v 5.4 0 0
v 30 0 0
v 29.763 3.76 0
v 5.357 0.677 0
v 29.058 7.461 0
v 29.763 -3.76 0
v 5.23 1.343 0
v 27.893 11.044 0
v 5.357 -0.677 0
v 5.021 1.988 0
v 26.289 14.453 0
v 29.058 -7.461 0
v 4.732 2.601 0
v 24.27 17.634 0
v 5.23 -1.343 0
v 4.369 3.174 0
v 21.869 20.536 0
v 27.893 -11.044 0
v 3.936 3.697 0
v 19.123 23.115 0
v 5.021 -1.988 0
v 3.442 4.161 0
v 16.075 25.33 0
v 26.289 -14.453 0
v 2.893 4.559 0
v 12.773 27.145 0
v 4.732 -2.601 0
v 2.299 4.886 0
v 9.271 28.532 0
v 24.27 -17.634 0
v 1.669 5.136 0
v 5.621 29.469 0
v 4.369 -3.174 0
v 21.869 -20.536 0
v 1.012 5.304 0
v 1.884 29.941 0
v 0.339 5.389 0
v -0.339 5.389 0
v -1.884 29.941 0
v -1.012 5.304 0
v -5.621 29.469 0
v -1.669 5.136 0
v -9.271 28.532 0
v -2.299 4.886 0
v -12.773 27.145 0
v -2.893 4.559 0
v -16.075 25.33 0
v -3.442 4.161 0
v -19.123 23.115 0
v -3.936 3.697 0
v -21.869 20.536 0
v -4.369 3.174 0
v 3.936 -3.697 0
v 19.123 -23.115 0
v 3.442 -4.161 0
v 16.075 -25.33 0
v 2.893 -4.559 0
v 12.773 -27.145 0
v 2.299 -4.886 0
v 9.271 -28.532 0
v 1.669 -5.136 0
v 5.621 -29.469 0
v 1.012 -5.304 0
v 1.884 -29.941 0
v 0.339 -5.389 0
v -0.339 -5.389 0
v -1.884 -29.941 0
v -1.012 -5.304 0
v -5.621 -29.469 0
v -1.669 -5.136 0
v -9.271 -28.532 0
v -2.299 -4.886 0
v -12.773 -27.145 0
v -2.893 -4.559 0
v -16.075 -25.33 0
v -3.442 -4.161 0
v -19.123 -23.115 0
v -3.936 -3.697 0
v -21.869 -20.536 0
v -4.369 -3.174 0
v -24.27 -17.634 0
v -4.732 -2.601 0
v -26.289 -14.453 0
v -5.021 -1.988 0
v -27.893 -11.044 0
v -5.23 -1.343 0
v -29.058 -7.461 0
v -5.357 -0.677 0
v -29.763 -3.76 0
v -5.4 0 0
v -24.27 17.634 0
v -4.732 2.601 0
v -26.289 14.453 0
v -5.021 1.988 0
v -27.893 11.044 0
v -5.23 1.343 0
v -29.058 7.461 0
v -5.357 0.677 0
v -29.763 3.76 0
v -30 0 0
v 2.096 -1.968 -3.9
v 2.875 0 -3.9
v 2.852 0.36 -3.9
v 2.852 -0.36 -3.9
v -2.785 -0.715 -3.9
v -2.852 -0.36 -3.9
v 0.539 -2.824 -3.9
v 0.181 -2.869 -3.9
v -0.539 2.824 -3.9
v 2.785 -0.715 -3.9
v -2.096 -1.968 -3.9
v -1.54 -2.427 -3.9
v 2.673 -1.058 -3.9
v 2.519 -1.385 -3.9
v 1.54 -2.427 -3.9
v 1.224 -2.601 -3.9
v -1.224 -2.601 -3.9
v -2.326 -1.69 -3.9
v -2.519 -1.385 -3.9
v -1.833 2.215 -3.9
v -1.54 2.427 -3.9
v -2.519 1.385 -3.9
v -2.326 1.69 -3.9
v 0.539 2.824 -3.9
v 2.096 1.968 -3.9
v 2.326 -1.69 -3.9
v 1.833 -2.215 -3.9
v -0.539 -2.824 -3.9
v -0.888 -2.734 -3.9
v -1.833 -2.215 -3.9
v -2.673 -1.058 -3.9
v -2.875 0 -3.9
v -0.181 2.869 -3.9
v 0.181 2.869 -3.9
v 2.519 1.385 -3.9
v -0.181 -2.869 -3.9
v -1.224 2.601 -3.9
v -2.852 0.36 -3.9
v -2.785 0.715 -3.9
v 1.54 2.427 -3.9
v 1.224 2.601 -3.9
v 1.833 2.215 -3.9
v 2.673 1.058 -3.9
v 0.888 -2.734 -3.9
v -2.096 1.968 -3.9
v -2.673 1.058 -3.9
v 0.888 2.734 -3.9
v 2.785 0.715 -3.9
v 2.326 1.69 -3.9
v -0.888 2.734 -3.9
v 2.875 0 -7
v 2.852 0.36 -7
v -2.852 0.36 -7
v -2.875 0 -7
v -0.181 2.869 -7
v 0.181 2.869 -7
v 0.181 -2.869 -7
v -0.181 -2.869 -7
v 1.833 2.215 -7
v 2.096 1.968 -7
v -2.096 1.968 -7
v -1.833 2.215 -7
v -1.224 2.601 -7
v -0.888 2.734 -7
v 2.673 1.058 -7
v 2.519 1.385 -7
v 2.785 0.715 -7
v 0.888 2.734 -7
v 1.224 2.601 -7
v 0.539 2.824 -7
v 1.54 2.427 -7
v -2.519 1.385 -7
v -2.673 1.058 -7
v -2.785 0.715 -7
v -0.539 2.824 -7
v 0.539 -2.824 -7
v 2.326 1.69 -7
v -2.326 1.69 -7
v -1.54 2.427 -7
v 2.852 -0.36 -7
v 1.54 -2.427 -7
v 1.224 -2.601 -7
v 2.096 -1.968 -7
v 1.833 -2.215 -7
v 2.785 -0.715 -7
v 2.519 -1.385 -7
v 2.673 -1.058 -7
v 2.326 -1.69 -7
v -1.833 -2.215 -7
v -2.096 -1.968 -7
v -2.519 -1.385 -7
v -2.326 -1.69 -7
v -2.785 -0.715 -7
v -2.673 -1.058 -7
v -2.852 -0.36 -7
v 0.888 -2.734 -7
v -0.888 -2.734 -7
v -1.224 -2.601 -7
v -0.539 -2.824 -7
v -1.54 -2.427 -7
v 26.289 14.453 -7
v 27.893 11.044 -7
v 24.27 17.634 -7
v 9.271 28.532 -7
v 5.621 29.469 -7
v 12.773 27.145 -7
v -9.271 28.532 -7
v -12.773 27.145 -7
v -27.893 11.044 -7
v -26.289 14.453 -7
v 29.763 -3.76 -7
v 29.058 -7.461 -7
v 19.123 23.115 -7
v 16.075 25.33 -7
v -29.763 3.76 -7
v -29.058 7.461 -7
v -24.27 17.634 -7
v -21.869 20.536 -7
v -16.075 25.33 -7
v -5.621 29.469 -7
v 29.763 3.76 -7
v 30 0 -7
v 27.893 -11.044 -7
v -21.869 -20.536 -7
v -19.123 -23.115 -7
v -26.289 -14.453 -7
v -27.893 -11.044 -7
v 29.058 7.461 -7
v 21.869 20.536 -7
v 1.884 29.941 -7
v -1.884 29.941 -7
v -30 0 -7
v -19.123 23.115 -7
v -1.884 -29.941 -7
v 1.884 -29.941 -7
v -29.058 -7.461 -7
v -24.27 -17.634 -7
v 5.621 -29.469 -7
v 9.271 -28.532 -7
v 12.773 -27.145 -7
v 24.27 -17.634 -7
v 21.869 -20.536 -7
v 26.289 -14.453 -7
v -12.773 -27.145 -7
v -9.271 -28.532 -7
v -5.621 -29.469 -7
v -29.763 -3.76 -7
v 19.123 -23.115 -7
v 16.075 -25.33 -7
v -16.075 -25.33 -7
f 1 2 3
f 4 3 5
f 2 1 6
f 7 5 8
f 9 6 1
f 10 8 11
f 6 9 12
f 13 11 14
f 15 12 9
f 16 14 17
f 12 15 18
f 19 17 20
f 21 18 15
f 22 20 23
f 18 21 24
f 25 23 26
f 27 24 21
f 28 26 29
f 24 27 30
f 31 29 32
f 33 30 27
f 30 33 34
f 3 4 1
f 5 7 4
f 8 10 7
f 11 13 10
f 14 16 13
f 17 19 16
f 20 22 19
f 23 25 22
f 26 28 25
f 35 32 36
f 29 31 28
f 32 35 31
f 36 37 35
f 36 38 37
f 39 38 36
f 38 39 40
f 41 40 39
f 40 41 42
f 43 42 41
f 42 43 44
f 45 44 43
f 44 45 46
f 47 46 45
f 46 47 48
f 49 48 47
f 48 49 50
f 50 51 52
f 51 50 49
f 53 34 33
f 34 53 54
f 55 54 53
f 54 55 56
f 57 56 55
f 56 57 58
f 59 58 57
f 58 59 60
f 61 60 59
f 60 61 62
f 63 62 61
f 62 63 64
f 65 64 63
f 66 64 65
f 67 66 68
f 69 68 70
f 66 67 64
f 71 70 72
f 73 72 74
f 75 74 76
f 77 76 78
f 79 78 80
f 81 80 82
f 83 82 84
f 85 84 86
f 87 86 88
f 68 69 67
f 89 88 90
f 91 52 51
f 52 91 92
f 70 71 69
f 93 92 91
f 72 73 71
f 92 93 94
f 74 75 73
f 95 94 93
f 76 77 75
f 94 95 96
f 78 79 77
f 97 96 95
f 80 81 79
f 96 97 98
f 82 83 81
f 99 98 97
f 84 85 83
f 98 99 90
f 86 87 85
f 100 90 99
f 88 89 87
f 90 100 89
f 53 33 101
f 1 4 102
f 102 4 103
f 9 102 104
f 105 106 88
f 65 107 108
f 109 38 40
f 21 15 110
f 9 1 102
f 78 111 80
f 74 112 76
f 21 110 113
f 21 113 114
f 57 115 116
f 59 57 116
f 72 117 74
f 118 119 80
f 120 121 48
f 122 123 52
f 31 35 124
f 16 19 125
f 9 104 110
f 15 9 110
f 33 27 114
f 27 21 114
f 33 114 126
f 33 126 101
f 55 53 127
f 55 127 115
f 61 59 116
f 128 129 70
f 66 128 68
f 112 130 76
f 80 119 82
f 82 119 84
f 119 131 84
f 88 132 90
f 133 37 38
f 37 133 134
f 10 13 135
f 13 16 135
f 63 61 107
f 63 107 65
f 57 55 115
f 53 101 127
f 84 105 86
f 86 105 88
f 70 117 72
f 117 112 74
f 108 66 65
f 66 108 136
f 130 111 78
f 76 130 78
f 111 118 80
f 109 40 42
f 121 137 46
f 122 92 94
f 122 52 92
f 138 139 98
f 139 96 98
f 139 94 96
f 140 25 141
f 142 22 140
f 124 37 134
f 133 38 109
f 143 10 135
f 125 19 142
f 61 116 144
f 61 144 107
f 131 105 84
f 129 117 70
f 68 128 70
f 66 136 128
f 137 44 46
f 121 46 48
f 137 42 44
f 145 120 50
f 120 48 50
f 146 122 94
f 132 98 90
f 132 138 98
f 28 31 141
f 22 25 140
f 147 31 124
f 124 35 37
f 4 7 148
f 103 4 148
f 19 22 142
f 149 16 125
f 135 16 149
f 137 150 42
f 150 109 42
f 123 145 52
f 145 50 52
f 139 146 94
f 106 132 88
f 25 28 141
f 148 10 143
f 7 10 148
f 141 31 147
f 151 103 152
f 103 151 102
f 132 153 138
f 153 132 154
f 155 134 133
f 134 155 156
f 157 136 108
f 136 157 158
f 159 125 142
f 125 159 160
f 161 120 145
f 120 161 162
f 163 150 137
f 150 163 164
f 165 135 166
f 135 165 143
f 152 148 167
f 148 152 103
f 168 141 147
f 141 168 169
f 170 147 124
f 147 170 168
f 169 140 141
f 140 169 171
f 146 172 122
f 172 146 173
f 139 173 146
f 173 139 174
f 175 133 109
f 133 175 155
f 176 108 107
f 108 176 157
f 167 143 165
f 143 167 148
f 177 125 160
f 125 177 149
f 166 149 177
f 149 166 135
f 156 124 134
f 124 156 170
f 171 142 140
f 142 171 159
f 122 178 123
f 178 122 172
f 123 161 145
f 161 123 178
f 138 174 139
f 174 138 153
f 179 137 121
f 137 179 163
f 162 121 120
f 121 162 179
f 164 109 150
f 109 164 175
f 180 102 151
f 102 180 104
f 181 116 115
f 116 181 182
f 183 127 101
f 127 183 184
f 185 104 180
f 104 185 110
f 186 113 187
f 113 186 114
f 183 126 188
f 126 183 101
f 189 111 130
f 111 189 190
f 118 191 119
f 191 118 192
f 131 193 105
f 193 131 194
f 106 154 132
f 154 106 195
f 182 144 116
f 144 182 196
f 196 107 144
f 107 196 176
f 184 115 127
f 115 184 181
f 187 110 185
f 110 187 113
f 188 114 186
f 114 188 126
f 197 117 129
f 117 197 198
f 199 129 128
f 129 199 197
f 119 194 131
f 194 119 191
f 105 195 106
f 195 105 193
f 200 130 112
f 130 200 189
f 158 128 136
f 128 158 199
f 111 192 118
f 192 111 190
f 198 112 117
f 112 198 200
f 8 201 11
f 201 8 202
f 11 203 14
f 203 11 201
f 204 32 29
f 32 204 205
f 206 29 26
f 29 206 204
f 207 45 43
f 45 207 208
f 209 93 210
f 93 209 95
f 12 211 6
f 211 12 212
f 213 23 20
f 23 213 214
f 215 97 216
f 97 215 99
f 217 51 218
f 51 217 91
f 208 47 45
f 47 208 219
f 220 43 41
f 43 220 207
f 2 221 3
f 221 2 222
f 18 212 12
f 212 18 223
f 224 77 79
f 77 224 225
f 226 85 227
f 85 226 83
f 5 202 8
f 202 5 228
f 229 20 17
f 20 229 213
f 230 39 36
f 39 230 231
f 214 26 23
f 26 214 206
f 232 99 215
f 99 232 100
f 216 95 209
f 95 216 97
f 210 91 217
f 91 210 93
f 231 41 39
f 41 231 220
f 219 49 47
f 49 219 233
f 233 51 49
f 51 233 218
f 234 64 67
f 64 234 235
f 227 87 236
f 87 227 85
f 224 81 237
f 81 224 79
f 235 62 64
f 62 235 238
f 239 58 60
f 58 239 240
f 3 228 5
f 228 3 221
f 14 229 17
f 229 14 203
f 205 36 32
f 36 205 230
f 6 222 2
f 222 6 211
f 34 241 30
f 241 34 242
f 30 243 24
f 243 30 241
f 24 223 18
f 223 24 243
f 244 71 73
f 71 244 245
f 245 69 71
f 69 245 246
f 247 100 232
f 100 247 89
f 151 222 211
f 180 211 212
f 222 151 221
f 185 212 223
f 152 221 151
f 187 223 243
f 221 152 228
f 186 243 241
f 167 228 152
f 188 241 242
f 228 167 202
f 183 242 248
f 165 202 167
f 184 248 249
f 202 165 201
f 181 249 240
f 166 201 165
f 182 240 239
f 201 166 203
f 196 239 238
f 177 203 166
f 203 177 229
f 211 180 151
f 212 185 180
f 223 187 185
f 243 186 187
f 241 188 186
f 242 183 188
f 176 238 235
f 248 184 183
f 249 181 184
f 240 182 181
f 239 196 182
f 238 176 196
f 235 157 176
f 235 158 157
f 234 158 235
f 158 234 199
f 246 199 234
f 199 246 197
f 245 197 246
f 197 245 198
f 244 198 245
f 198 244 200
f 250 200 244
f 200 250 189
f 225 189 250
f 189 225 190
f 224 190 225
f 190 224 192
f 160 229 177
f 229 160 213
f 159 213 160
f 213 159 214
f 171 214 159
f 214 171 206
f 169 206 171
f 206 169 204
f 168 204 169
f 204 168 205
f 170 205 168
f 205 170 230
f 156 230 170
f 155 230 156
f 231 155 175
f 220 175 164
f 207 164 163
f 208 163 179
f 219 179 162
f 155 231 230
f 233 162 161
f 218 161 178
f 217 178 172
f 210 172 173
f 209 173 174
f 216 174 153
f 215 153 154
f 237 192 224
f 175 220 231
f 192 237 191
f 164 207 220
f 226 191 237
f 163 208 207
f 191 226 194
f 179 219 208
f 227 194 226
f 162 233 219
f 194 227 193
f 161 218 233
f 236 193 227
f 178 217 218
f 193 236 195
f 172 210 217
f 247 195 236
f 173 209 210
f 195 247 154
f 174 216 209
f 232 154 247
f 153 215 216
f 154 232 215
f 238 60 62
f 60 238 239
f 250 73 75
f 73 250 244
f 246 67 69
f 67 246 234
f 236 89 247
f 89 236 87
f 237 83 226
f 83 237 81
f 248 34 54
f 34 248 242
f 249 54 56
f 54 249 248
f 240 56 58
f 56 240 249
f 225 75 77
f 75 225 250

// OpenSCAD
$fn = 50;


difference() {
	union() {
		translate(v = [0, 0, -7.0000000000]) {
			cylinder(h = 7, r = 30.0000000000);
		}
	}
	union() {
		translate(v = [0, 0, 0]) {
			rotate(a = [0, 0, 0]) {
				difference() {
					union() {
						#translate(v = [0, 0, -9.0000000000]) {
							cylinder(h = 9, r = 2.6000000000);
						}
						#translate(v = [0, 0, -3.9000000000]) {
							cylinder(h = 3.9000000000, r1 = 2.8750000000, r2 = 5.4000000000);
						}
						#translate(v = [0, 0, -9.0000000000]) {
							cylinder(h = 9, r = 2.8750000000);
						}
						#translate(v = [0, 0, -9.0000000000]) {
							cylinder(h = 9, r = 2.6000000000);
						}
					}
					union();
				}
			}
		}
	}
}
